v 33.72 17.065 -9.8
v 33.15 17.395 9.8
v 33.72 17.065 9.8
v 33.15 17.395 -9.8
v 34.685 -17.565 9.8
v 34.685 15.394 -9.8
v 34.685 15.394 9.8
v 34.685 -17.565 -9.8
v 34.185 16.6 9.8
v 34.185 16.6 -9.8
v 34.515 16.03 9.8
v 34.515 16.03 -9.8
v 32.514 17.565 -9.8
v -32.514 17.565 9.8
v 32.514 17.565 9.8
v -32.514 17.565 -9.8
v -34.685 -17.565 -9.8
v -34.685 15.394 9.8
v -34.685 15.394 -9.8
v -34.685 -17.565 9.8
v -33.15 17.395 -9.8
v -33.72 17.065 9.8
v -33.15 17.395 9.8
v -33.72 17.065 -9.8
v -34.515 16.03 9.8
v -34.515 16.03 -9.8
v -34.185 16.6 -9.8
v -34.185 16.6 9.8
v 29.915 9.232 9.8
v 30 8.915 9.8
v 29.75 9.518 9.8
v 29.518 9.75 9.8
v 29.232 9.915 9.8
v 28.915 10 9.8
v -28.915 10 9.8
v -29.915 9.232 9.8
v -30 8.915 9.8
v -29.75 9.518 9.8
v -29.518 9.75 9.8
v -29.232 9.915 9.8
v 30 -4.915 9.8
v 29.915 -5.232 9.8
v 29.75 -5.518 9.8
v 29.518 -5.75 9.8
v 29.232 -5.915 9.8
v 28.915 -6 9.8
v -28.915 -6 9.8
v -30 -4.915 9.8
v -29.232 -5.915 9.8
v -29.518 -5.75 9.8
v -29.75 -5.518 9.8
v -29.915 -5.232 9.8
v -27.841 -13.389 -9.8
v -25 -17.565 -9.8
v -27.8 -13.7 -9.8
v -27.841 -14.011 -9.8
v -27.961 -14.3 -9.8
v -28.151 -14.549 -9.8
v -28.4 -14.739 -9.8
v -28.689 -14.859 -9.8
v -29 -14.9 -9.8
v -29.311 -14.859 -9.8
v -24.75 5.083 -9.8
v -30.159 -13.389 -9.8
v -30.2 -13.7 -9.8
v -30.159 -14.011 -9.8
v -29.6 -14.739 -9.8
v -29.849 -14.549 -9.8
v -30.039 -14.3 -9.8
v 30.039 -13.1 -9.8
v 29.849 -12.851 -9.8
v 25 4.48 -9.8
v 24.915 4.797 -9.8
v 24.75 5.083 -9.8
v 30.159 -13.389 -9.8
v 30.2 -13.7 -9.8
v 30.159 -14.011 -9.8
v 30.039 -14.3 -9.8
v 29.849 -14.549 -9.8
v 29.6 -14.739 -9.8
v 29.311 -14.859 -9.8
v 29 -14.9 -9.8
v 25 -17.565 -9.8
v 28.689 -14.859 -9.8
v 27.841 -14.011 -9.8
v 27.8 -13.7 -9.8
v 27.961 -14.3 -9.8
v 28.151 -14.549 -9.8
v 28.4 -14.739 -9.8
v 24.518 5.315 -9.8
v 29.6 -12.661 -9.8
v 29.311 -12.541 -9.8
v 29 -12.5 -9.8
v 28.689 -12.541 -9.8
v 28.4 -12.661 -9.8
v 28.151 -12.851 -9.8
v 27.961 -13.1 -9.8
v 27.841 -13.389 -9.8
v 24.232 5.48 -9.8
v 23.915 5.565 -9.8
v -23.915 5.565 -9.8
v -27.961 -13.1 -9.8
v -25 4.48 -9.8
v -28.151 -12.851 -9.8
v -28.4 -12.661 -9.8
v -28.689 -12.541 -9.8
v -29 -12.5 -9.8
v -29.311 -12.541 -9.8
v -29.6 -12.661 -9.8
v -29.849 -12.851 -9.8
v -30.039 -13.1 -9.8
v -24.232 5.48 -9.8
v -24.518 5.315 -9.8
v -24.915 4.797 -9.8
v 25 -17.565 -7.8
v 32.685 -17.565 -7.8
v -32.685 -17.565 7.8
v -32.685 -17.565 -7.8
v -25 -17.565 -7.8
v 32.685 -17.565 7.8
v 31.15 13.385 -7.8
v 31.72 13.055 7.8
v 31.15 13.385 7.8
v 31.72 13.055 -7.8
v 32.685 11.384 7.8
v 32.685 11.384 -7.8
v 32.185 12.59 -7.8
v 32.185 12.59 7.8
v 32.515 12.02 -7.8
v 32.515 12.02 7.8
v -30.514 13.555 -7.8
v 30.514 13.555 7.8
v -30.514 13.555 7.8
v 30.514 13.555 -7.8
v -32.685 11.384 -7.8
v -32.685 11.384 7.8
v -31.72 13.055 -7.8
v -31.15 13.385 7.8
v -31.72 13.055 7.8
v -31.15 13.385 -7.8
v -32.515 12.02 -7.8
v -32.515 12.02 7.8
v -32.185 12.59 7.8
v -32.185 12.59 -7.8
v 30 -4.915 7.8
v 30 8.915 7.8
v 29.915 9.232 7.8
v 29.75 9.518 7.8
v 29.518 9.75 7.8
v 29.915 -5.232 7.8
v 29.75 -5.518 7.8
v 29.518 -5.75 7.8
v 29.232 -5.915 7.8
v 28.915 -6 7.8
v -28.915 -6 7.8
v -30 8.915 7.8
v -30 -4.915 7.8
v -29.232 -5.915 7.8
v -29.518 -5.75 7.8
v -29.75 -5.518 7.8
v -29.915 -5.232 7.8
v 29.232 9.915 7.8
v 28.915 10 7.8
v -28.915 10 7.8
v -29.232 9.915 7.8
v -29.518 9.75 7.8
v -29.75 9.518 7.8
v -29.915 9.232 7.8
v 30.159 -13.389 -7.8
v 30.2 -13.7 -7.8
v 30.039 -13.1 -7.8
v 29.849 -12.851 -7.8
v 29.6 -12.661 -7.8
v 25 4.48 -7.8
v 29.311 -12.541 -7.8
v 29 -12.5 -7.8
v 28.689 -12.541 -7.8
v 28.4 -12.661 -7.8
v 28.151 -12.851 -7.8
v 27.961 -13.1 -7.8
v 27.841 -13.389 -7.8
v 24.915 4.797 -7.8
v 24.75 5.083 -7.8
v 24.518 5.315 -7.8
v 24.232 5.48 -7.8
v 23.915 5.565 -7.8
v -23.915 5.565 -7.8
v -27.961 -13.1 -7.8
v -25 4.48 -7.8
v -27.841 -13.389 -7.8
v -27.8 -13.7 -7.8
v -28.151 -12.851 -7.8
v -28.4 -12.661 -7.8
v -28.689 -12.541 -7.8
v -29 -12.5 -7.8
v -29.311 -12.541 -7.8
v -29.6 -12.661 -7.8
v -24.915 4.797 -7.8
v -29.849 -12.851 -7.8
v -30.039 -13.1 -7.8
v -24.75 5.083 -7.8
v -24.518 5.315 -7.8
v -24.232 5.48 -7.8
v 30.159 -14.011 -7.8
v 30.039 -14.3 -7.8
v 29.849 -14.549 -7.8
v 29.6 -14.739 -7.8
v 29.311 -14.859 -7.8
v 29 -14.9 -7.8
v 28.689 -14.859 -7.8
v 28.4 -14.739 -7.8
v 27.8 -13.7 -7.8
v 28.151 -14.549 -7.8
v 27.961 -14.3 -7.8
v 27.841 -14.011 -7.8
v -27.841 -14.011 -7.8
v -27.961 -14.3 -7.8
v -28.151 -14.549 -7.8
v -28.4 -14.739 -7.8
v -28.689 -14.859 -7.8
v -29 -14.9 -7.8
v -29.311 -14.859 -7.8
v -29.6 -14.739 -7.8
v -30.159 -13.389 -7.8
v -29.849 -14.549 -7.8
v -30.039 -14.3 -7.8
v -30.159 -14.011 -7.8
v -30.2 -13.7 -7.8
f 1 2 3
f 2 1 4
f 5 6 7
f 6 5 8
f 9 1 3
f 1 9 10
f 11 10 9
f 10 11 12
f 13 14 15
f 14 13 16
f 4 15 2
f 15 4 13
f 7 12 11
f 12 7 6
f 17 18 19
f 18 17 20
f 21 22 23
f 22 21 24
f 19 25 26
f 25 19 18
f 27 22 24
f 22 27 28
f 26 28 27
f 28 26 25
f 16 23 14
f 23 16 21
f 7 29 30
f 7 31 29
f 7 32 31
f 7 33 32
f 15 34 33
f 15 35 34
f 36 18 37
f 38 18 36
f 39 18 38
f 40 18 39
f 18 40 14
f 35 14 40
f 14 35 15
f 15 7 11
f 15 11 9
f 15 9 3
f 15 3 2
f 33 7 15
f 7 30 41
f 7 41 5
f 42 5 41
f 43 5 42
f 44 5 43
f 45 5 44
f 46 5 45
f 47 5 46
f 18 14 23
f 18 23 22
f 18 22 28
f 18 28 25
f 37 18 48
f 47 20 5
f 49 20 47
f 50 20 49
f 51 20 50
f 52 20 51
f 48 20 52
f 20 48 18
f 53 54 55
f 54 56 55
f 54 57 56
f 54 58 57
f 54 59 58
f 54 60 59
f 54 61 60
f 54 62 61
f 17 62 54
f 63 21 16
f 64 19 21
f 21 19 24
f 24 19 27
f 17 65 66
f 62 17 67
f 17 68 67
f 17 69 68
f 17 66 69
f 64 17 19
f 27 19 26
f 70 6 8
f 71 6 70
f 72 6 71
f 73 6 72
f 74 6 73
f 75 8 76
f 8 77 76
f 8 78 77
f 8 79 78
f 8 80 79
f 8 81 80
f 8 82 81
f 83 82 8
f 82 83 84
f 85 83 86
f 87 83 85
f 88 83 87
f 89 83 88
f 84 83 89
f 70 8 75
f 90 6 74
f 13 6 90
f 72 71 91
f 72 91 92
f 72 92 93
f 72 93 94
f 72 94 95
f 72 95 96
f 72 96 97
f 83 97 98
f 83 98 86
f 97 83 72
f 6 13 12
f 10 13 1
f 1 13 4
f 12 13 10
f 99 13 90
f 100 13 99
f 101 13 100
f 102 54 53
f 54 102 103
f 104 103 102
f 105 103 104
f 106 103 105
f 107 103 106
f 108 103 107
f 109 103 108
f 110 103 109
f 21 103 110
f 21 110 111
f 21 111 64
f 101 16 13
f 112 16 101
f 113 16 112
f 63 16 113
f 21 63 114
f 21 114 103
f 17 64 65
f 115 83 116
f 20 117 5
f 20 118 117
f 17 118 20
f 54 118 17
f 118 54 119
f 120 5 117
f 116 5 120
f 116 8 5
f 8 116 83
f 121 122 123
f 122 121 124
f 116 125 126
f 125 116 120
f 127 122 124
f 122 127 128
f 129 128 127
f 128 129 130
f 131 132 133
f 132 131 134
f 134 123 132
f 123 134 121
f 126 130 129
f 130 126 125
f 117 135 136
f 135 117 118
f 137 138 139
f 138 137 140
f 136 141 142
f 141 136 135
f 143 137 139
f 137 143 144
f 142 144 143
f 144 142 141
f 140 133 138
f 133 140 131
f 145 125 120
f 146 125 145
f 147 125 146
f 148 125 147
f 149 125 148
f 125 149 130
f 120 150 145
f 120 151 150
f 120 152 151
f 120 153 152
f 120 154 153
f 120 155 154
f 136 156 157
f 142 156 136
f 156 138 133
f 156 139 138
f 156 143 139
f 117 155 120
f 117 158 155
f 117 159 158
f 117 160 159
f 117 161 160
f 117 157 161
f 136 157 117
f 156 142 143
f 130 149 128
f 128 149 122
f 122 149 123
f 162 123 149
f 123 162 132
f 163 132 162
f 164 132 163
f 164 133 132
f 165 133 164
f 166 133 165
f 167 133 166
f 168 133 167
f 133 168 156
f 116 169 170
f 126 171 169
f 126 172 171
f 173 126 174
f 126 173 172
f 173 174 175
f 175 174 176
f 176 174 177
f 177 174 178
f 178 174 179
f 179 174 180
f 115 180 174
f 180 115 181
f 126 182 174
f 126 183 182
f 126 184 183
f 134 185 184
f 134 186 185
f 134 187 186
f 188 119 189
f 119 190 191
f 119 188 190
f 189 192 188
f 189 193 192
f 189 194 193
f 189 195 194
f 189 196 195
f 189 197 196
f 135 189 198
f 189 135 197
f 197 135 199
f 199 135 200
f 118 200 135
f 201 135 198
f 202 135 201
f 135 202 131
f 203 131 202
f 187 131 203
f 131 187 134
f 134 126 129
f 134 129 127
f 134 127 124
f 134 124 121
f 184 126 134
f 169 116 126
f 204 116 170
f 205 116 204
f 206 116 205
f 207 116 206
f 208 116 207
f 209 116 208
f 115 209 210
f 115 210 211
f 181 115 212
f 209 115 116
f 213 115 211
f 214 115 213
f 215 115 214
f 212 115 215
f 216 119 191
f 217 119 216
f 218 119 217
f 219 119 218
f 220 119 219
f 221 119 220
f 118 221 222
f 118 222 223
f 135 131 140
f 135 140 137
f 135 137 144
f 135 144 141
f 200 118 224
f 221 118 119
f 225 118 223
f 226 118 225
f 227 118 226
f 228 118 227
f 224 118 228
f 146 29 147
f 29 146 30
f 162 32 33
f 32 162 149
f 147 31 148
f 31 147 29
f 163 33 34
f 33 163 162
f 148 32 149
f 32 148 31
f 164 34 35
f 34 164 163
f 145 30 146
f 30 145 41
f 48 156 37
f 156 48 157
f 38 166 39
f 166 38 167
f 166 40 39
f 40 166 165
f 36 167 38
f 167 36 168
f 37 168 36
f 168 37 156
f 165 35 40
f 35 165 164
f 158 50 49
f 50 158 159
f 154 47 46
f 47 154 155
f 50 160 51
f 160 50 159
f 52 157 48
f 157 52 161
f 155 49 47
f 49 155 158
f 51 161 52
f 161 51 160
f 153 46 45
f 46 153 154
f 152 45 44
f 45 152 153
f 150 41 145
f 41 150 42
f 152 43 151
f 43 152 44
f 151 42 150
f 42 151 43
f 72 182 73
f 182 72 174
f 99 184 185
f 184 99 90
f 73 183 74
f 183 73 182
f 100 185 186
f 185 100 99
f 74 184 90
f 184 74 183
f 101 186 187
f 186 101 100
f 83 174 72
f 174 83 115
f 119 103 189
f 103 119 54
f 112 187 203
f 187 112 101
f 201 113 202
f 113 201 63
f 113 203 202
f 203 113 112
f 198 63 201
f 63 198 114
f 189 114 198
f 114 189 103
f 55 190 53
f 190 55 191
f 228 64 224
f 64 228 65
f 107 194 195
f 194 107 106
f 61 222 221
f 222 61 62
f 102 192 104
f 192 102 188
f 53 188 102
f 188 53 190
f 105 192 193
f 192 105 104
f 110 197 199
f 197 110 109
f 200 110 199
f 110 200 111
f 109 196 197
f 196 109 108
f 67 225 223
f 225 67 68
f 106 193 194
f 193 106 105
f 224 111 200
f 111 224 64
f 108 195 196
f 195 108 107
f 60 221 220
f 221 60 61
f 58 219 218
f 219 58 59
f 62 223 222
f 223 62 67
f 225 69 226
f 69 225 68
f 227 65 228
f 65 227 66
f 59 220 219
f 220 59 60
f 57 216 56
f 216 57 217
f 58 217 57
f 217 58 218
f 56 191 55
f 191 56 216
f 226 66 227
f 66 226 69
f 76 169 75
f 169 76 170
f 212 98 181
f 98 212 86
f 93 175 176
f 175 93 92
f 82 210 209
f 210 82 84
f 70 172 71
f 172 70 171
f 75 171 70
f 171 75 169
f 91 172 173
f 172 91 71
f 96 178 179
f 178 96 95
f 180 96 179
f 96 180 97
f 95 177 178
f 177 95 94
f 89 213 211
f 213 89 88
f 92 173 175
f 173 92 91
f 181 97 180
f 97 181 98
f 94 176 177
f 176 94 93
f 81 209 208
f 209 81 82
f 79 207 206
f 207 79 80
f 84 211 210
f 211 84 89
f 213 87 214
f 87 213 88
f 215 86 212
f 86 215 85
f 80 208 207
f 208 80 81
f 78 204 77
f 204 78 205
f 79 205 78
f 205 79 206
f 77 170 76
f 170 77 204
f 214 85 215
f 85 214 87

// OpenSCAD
/*
 * This work is licensed under the Creative Commons Attribution-ShareAlike
 * 4.0 International License. To view a copy of this license, visit
 * https://creativecommons.org/licenses/by-sa/4.0/.
 */

include <BOSL/constants.scad>
use <BOSL/metric_screws.scad>
use <BOSL/shapes.scad>
use <BOSL/transforms.scad>
use <BOSL/masks.scad>

/* [Customizable Parameters] */

wall_thickness=2;

bonnet_width=65.06;
bonnet_depth=30.61;
cyberdeck_width=65.37;
cyberdeck_depth=31.13;

cyberdeck_x_hole_distance=58;
cyberdeck_y_hole_distance=23.4;
cyberdeck_hole_diameter=3;

bonnet_deck_height=12.88;
bonnet_deck_oled_height=15.60;

bonnet_oled_left=2;
bonnet_oled_right=2;
bonnet_oled_top=6;
bonnet_oled_bottom=8.5;

oled_visible_area_top=8;
oled_visible_area=[60, 16];

enclosure_fillet=2.5;

enclosure_size=[
    cyberdeck_width+(wall_thickness*2),
    cyberdeck_depth+(wall_thickness*2),
    bonnet_deck_oled_height+(wall_thickness*2)
];

cavity_size=[
    cyberdeck_width,
    cyberdeck_depth,
    bonnet_deck_oled_height
];

panel_window_size=[
    oled_visible_area[0],
    oled_visible_area[1],
    wall_thickness+0.01
];

bottom_opening_size=[
    cyberdeck_x_hole_distance-(wall_thickness*4),
    cyberdeck_depth,
    wall_thickness+0.01
];

difference()
{
    // main box
    cuboid(enclosure_size, fillet=enclosure_fillet, edges=EDGES_Z_BK, $fn=24, center=true);
    forward(wall_thickness+0.01)
        cuboid(cavity_size, fillet=enclosure_fillet, edges=EDGES_Z_BK, $fn=24, center=true);

    // window
    up((bonnet_deck_oled_height/2)+(wall_thickness/2))
    back((oled_visible_area_top/2)-wall_thickness)
        cuboid(panel_window_size, fillet=enclosure_fillet/2, edges=EDGES_Z_ALL, $fn=24, center=true);

    // bottom opening
    forward(wall_thickness*5)
    down((bonnet_deck_oled_height/2)+(wall_thickness/2))
        cuboid(bottom_opening_size, fillet=enclosure_fillet/2, edges=EDGES_Z_BK, $fn=24, center=true);

    forward(wall_thickness+(cyberdeck_y_hole_distance/2))
    down((bonnet_deck_oled_height/2)+(wall_thickness/2))
    xspread(n=2, spacing=cyberdeck_x_hole_distance)
        cyl(d=cyberdeck_hole_diameter*0.80, l=wall_thickness+0.01, $fn=24, center=true);
}
